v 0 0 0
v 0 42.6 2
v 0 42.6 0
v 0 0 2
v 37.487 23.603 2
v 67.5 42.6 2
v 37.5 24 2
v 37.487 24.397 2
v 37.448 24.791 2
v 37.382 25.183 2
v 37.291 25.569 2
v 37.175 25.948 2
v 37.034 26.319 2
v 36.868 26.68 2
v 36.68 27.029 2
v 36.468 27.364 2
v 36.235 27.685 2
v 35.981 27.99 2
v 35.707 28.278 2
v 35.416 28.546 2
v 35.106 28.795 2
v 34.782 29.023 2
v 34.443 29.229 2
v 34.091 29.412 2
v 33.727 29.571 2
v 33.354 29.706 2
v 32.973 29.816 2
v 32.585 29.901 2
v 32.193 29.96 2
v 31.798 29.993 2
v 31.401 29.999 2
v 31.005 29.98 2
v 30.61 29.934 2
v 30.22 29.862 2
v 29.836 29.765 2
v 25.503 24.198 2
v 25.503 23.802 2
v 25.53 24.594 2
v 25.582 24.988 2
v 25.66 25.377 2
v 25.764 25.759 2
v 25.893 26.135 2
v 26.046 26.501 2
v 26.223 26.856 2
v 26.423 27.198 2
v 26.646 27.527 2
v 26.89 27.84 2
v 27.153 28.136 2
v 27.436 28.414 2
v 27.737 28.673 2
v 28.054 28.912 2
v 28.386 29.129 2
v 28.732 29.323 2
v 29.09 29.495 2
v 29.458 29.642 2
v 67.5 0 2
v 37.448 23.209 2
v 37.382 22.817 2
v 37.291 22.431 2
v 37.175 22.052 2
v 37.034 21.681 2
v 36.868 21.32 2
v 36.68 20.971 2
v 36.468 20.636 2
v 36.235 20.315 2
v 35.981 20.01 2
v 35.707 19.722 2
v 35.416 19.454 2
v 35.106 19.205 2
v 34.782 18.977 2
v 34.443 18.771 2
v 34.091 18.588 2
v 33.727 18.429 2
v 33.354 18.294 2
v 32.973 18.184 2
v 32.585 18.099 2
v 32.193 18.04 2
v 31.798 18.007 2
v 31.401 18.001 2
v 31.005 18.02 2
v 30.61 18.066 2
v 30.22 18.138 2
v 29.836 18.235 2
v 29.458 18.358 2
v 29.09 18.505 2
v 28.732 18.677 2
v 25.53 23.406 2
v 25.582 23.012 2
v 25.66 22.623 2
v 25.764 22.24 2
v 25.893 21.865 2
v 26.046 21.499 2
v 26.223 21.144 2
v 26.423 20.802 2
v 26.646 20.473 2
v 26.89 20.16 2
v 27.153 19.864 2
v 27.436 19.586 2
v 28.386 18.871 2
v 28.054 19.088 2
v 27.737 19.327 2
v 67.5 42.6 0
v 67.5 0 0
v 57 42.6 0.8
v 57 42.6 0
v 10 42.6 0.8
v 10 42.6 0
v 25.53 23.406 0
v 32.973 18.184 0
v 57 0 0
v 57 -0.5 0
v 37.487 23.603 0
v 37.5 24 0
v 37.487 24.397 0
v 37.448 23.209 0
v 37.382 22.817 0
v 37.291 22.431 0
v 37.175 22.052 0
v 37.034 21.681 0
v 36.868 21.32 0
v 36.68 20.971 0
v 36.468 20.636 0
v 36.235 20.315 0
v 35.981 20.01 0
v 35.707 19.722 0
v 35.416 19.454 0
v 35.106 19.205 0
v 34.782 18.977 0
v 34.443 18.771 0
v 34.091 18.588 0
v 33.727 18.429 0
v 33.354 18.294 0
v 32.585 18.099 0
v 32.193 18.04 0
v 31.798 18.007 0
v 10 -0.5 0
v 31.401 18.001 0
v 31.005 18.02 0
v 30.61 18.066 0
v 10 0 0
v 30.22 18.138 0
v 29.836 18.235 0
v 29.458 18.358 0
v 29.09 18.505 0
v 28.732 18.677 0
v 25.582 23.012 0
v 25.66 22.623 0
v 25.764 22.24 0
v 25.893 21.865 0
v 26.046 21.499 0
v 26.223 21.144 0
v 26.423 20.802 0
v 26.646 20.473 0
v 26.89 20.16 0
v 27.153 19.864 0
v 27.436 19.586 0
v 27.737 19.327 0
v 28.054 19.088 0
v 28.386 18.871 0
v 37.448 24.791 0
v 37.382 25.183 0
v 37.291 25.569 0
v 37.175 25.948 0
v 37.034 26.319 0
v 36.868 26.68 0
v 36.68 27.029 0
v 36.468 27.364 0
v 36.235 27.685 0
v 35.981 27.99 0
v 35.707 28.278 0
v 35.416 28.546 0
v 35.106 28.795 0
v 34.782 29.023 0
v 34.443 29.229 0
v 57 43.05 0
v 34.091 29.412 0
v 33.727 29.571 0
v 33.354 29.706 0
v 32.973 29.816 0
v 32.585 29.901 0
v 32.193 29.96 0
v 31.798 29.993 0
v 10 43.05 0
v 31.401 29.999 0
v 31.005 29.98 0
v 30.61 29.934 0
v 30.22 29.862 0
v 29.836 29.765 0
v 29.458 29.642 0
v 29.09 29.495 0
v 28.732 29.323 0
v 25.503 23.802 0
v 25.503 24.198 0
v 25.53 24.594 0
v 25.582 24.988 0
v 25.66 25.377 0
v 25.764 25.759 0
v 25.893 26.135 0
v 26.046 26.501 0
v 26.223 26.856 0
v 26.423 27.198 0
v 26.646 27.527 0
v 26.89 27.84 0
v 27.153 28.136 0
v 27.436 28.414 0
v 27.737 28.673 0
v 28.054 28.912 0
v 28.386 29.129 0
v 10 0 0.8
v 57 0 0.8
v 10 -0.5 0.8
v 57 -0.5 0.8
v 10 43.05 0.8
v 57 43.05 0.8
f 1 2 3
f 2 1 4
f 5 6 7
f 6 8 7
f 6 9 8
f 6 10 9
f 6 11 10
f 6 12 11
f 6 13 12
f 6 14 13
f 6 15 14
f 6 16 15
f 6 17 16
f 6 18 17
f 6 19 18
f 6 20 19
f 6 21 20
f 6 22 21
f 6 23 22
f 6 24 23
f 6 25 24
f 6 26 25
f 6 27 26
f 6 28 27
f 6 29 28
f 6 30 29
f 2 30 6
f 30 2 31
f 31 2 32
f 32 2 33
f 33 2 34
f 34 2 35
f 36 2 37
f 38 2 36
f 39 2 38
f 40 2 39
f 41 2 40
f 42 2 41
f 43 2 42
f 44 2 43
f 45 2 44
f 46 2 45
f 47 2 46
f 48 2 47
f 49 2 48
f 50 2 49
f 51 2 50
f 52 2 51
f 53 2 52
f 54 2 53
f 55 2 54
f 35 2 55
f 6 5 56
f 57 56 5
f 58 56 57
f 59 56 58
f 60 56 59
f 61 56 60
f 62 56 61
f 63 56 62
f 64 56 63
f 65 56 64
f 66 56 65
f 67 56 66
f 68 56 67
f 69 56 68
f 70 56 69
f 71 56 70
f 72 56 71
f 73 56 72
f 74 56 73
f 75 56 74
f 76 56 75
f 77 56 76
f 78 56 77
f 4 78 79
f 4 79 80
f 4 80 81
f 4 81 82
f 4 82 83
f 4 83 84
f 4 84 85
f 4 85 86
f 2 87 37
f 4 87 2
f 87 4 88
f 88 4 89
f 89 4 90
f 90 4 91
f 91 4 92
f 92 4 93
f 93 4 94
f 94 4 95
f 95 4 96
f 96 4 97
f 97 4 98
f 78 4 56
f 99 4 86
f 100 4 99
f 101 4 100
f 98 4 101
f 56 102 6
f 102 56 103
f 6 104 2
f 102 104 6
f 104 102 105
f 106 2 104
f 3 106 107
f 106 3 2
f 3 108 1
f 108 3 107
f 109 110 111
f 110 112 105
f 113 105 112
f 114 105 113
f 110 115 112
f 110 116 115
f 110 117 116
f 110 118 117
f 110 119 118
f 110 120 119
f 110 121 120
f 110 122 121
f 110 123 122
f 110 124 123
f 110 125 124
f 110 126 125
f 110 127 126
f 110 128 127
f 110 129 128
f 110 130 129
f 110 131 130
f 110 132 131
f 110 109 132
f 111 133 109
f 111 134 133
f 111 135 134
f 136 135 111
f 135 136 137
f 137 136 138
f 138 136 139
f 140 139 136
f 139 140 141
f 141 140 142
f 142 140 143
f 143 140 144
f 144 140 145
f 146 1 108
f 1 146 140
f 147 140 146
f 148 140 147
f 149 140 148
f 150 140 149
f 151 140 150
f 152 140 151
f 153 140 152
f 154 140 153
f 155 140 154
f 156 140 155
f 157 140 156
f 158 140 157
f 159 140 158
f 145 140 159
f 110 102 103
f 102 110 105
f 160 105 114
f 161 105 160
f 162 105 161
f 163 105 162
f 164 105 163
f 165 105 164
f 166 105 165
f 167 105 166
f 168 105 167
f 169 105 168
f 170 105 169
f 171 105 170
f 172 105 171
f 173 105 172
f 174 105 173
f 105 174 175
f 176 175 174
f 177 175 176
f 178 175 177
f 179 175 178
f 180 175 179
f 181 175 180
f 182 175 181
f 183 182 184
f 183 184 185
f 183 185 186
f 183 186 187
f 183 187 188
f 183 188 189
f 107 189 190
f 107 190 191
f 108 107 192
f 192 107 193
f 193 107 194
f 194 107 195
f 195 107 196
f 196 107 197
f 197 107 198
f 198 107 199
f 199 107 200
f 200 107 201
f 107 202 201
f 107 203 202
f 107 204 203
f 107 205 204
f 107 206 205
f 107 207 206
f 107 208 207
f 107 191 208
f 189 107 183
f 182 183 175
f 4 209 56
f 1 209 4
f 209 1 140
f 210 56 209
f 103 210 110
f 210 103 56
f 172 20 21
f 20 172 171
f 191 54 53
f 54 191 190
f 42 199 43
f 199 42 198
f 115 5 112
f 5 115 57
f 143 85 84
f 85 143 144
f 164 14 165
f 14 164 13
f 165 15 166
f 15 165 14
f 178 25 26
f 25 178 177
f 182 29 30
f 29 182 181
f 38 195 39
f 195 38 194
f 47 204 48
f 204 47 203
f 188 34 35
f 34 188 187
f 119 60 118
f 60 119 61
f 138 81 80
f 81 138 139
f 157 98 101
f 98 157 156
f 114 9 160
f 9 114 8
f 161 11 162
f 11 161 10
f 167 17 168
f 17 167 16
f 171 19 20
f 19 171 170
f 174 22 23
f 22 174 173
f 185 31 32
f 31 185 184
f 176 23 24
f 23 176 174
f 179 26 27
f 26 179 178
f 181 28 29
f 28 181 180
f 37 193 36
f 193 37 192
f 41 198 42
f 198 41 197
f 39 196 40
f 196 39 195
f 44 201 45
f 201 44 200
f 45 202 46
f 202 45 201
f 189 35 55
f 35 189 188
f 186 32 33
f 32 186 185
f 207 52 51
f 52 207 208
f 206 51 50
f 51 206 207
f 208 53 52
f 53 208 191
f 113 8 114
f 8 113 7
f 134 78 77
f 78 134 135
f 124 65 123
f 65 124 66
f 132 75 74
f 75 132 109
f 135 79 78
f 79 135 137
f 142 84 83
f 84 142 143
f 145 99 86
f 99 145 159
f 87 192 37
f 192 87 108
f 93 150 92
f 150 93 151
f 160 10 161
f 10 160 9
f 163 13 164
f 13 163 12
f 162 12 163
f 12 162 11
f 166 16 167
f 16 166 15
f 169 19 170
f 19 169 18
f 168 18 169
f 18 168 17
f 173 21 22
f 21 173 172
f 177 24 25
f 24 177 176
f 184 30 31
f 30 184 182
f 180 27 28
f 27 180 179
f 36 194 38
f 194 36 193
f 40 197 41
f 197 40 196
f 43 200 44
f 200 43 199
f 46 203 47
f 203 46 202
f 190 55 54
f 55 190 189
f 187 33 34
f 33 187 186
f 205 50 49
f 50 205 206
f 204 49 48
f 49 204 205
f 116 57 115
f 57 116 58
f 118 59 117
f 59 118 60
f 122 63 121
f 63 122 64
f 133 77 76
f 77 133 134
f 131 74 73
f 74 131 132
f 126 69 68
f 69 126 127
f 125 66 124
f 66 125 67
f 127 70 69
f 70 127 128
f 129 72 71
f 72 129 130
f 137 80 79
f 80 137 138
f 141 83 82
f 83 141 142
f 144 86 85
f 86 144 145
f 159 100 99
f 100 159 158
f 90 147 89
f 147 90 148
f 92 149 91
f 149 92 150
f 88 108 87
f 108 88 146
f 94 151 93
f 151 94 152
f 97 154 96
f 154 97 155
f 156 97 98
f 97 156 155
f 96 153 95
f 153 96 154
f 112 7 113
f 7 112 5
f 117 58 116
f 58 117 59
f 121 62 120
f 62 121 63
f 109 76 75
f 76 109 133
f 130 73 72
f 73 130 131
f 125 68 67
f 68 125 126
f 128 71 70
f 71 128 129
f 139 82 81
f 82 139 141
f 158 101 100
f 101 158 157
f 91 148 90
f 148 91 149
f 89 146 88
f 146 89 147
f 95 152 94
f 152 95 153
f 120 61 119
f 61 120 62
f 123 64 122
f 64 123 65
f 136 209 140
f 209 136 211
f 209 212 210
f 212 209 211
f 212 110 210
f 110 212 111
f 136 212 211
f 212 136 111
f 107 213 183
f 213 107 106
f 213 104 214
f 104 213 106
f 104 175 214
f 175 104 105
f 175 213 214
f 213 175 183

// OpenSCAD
$fa = 1;  
$fs = 0.4;  

difference() {
    cube([67.5, 42.6, 2]);
    
    translate([31.5, 24, -1])
        cylinder(h=4, r=6);

}

    // Indents on top inner long wall
    translate([10, -0.5, 0])
        cube([47, 0.7, 0.8]);

    translate([10, 42.35, 0])
        cube([47, 0.7, 0.8]);
